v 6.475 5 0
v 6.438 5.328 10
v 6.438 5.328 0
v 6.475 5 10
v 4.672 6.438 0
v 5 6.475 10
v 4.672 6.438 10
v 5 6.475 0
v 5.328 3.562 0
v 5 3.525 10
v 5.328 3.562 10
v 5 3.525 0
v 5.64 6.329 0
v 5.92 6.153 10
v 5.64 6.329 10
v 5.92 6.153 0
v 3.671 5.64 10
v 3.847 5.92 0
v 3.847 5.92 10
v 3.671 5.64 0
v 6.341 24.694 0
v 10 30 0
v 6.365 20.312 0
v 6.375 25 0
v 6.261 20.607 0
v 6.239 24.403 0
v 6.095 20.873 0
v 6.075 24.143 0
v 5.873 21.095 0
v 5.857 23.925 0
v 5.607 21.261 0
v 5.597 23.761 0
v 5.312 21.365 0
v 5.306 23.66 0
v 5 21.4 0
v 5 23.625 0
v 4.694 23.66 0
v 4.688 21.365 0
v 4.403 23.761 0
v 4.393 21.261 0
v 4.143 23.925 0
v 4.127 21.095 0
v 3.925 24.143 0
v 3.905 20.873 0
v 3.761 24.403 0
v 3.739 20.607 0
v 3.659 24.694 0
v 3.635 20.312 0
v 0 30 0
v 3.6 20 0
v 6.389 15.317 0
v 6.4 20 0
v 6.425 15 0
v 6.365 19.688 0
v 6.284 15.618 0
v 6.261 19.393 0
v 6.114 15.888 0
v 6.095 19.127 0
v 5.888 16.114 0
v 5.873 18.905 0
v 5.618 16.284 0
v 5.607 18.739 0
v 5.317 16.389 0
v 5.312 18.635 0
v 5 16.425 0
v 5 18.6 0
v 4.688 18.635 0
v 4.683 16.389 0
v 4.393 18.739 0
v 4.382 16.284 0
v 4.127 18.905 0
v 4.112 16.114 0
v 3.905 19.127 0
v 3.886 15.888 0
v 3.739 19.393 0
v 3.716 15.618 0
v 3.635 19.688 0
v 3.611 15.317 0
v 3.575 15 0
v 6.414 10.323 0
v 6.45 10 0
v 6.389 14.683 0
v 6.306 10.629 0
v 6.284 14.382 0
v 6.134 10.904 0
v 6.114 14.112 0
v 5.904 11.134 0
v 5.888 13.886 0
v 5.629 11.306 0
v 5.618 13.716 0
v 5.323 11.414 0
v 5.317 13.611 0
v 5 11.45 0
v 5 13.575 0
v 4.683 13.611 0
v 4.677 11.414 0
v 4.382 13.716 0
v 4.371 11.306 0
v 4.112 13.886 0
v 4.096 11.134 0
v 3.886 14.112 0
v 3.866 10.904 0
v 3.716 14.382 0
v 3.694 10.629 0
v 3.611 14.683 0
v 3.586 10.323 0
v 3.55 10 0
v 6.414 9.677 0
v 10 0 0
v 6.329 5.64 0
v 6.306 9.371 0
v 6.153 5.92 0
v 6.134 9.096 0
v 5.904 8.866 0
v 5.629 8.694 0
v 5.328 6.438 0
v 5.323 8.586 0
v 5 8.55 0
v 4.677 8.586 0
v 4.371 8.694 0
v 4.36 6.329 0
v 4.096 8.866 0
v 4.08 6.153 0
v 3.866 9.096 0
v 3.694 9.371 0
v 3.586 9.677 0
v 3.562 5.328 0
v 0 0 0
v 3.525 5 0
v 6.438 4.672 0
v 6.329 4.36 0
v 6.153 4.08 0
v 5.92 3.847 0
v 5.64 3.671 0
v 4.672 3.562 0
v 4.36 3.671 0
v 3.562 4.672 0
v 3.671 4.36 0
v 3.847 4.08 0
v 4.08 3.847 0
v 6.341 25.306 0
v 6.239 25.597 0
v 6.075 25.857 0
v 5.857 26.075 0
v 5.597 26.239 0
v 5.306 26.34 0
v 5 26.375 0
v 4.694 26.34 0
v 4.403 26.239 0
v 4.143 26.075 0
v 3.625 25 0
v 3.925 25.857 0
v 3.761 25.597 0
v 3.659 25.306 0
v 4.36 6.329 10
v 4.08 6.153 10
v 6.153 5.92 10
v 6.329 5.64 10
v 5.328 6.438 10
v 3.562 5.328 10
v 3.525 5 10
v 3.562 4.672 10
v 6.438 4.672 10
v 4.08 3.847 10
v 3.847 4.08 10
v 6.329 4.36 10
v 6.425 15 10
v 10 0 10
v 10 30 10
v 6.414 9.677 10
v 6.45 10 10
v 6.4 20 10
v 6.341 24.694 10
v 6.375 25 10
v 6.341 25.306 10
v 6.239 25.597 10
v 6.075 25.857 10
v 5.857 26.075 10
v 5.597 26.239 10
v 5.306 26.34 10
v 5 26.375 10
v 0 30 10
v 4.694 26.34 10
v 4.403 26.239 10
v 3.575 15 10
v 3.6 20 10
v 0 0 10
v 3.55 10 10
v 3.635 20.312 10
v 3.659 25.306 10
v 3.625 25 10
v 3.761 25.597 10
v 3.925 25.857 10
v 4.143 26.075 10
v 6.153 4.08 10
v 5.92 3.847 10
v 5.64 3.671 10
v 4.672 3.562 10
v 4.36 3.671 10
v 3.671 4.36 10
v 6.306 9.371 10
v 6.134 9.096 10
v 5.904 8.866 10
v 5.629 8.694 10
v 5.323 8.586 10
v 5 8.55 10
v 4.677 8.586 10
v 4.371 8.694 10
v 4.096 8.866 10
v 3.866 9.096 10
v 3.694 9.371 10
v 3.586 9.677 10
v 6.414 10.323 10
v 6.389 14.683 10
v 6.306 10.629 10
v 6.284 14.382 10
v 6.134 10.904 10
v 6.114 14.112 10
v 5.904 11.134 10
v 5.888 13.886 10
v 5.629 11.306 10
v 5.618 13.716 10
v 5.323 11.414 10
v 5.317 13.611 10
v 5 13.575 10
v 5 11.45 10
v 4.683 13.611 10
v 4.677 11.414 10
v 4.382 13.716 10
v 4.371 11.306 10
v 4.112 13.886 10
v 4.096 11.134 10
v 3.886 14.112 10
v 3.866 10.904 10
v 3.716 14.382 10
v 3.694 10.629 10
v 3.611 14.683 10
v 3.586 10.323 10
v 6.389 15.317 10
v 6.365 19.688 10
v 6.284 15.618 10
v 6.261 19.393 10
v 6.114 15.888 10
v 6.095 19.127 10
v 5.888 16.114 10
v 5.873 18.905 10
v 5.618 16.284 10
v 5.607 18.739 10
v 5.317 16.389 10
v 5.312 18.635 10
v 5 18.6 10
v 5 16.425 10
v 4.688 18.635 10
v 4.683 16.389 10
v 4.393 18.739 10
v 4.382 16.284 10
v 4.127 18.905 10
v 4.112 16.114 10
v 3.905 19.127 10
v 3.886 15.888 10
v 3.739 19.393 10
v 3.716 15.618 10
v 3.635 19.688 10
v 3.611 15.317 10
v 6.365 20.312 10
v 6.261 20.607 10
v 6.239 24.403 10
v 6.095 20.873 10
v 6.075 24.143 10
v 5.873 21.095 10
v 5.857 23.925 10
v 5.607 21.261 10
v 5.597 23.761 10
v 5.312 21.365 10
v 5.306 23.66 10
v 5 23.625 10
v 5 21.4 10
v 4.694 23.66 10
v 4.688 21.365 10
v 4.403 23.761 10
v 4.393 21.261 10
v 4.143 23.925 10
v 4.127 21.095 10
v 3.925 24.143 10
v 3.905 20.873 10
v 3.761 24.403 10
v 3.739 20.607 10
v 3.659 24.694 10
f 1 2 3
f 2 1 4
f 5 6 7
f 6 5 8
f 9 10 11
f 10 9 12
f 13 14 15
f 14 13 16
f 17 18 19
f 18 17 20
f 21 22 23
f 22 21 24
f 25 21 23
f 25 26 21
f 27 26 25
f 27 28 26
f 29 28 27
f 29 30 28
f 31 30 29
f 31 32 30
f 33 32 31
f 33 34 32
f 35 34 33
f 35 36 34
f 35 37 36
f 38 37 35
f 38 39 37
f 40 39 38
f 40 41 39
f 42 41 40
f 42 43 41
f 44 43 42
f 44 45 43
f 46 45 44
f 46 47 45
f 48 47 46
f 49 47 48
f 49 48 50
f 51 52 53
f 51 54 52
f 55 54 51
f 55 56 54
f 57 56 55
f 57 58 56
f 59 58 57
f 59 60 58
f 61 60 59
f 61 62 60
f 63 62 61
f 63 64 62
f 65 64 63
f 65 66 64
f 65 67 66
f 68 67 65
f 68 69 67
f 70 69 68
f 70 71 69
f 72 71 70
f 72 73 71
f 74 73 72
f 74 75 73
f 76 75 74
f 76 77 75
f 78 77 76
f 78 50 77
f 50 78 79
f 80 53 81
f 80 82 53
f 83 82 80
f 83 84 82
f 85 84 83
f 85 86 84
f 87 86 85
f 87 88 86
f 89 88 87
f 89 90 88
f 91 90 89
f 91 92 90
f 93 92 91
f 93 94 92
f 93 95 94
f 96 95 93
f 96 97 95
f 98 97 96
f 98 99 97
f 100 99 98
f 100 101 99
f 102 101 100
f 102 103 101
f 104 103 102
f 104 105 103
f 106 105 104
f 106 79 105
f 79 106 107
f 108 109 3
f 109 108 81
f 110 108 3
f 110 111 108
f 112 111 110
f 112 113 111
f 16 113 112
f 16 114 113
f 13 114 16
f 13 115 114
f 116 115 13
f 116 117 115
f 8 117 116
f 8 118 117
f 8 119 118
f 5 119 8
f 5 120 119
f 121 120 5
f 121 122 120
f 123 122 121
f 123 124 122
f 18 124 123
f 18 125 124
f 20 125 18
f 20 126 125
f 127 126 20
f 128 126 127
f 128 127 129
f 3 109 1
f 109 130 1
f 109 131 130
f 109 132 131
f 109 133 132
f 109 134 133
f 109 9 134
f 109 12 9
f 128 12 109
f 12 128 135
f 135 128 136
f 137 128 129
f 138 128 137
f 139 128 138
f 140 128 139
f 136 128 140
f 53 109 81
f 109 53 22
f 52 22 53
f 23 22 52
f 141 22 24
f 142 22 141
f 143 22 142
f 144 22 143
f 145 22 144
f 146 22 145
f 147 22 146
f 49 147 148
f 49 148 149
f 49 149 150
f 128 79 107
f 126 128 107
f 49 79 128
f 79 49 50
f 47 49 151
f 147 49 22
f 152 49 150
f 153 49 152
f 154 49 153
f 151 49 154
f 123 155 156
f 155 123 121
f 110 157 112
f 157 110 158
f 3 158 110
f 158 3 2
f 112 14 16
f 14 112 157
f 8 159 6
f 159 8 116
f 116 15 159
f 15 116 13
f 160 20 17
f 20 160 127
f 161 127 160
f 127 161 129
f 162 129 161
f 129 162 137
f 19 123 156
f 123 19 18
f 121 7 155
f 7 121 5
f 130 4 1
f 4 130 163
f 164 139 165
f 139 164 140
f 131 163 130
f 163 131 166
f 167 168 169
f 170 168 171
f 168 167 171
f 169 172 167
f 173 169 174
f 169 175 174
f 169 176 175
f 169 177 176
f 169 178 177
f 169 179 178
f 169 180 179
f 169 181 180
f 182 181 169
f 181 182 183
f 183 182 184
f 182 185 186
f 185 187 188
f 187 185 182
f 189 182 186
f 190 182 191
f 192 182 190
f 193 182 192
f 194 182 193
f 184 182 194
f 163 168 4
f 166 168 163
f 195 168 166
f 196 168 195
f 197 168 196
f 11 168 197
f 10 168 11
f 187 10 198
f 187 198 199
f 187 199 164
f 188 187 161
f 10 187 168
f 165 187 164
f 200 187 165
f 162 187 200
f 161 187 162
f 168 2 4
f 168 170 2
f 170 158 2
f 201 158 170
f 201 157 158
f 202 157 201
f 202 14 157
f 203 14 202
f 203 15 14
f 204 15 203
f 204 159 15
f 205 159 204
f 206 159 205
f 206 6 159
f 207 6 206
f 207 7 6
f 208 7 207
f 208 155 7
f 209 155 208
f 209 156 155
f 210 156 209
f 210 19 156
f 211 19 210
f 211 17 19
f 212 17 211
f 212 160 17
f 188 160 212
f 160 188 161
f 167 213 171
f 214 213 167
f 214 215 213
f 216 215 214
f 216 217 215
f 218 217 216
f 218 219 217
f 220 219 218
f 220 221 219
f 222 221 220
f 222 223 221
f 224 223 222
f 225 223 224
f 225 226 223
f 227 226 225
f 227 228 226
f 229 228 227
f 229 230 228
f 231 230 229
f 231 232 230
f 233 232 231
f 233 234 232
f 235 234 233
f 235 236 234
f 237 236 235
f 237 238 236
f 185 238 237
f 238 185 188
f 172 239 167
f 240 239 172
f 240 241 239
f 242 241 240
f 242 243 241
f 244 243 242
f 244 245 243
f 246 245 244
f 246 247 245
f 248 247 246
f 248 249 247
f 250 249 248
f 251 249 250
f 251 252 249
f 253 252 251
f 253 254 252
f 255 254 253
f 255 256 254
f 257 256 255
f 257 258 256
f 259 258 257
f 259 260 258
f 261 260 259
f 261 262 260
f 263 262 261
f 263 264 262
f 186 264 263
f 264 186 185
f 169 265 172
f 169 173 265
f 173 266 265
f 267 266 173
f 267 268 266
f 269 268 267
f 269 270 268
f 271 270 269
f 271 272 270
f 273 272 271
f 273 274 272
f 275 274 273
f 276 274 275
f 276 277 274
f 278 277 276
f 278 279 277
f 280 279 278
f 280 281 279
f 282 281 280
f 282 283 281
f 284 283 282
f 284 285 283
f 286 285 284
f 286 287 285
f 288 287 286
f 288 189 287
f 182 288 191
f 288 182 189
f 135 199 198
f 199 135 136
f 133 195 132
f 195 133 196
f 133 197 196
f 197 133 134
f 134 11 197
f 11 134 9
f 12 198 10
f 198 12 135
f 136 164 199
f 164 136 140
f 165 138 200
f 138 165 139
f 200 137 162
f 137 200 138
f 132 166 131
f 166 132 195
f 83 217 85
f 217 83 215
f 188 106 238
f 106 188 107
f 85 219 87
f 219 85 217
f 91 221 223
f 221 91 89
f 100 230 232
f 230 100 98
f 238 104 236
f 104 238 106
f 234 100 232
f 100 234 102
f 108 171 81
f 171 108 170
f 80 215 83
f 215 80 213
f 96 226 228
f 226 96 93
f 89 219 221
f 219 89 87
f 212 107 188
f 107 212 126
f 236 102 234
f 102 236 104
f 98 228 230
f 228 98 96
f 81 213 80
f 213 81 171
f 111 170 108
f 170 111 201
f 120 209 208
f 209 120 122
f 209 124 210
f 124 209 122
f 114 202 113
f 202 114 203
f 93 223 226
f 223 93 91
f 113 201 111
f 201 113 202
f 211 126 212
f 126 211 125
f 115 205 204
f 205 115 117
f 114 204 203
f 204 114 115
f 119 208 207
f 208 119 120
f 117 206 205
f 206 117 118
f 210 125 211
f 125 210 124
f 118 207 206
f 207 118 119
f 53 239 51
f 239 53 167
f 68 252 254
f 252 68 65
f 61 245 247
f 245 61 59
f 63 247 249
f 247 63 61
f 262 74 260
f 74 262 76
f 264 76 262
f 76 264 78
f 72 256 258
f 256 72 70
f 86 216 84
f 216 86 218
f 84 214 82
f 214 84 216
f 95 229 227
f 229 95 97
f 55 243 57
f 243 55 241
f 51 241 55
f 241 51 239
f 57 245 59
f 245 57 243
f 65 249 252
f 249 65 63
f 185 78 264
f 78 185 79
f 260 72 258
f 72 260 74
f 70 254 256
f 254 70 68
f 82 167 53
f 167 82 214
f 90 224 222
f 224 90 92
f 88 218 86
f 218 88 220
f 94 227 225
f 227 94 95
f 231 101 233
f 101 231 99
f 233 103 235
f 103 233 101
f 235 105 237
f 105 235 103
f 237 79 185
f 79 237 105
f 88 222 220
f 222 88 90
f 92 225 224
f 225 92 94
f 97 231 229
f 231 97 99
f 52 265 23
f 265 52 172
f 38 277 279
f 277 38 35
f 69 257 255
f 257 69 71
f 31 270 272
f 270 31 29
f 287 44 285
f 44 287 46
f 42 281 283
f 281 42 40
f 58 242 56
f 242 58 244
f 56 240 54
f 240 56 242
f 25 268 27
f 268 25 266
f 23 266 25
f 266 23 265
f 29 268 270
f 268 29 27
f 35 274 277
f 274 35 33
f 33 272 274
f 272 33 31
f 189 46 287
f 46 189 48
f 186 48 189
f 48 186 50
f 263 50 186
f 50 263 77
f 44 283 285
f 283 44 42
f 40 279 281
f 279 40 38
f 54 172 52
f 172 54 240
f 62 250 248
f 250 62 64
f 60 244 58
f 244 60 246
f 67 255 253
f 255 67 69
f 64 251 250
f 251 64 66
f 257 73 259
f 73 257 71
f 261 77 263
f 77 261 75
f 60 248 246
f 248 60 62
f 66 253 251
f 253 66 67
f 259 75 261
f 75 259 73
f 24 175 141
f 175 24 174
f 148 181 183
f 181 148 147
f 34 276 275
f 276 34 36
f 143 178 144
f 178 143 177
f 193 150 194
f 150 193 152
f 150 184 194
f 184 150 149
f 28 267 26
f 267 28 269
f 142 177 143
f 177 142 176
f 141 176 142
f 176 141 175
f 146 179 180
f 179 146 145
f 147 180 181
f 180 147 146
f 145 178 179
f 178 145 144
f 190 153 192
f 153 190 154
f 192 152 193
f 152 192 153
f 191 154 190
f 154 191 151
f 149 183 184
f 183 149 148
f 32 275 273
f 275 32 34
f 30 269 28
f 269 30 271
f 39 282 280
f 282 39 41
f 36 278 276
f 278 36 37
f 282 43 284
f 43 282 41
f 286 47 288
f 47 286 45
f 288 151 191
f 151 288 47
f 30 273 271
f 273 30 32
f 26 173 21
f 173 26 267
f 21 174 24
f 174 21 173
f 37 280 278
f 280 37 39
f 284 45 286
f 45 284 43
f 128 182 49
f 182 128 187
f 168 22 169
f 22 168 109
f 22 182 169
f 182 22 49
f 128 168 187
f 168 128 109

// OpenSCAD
w=1.2;

difference()
{
    cube([10,30,10]);
    for(i=[1:5])
    {
        d = 3-(i*0.1/2);
        echo(d);
        translate([5,i*5,0])
        #cylinder(d=d,h=10,$fn=28);
    }
}
